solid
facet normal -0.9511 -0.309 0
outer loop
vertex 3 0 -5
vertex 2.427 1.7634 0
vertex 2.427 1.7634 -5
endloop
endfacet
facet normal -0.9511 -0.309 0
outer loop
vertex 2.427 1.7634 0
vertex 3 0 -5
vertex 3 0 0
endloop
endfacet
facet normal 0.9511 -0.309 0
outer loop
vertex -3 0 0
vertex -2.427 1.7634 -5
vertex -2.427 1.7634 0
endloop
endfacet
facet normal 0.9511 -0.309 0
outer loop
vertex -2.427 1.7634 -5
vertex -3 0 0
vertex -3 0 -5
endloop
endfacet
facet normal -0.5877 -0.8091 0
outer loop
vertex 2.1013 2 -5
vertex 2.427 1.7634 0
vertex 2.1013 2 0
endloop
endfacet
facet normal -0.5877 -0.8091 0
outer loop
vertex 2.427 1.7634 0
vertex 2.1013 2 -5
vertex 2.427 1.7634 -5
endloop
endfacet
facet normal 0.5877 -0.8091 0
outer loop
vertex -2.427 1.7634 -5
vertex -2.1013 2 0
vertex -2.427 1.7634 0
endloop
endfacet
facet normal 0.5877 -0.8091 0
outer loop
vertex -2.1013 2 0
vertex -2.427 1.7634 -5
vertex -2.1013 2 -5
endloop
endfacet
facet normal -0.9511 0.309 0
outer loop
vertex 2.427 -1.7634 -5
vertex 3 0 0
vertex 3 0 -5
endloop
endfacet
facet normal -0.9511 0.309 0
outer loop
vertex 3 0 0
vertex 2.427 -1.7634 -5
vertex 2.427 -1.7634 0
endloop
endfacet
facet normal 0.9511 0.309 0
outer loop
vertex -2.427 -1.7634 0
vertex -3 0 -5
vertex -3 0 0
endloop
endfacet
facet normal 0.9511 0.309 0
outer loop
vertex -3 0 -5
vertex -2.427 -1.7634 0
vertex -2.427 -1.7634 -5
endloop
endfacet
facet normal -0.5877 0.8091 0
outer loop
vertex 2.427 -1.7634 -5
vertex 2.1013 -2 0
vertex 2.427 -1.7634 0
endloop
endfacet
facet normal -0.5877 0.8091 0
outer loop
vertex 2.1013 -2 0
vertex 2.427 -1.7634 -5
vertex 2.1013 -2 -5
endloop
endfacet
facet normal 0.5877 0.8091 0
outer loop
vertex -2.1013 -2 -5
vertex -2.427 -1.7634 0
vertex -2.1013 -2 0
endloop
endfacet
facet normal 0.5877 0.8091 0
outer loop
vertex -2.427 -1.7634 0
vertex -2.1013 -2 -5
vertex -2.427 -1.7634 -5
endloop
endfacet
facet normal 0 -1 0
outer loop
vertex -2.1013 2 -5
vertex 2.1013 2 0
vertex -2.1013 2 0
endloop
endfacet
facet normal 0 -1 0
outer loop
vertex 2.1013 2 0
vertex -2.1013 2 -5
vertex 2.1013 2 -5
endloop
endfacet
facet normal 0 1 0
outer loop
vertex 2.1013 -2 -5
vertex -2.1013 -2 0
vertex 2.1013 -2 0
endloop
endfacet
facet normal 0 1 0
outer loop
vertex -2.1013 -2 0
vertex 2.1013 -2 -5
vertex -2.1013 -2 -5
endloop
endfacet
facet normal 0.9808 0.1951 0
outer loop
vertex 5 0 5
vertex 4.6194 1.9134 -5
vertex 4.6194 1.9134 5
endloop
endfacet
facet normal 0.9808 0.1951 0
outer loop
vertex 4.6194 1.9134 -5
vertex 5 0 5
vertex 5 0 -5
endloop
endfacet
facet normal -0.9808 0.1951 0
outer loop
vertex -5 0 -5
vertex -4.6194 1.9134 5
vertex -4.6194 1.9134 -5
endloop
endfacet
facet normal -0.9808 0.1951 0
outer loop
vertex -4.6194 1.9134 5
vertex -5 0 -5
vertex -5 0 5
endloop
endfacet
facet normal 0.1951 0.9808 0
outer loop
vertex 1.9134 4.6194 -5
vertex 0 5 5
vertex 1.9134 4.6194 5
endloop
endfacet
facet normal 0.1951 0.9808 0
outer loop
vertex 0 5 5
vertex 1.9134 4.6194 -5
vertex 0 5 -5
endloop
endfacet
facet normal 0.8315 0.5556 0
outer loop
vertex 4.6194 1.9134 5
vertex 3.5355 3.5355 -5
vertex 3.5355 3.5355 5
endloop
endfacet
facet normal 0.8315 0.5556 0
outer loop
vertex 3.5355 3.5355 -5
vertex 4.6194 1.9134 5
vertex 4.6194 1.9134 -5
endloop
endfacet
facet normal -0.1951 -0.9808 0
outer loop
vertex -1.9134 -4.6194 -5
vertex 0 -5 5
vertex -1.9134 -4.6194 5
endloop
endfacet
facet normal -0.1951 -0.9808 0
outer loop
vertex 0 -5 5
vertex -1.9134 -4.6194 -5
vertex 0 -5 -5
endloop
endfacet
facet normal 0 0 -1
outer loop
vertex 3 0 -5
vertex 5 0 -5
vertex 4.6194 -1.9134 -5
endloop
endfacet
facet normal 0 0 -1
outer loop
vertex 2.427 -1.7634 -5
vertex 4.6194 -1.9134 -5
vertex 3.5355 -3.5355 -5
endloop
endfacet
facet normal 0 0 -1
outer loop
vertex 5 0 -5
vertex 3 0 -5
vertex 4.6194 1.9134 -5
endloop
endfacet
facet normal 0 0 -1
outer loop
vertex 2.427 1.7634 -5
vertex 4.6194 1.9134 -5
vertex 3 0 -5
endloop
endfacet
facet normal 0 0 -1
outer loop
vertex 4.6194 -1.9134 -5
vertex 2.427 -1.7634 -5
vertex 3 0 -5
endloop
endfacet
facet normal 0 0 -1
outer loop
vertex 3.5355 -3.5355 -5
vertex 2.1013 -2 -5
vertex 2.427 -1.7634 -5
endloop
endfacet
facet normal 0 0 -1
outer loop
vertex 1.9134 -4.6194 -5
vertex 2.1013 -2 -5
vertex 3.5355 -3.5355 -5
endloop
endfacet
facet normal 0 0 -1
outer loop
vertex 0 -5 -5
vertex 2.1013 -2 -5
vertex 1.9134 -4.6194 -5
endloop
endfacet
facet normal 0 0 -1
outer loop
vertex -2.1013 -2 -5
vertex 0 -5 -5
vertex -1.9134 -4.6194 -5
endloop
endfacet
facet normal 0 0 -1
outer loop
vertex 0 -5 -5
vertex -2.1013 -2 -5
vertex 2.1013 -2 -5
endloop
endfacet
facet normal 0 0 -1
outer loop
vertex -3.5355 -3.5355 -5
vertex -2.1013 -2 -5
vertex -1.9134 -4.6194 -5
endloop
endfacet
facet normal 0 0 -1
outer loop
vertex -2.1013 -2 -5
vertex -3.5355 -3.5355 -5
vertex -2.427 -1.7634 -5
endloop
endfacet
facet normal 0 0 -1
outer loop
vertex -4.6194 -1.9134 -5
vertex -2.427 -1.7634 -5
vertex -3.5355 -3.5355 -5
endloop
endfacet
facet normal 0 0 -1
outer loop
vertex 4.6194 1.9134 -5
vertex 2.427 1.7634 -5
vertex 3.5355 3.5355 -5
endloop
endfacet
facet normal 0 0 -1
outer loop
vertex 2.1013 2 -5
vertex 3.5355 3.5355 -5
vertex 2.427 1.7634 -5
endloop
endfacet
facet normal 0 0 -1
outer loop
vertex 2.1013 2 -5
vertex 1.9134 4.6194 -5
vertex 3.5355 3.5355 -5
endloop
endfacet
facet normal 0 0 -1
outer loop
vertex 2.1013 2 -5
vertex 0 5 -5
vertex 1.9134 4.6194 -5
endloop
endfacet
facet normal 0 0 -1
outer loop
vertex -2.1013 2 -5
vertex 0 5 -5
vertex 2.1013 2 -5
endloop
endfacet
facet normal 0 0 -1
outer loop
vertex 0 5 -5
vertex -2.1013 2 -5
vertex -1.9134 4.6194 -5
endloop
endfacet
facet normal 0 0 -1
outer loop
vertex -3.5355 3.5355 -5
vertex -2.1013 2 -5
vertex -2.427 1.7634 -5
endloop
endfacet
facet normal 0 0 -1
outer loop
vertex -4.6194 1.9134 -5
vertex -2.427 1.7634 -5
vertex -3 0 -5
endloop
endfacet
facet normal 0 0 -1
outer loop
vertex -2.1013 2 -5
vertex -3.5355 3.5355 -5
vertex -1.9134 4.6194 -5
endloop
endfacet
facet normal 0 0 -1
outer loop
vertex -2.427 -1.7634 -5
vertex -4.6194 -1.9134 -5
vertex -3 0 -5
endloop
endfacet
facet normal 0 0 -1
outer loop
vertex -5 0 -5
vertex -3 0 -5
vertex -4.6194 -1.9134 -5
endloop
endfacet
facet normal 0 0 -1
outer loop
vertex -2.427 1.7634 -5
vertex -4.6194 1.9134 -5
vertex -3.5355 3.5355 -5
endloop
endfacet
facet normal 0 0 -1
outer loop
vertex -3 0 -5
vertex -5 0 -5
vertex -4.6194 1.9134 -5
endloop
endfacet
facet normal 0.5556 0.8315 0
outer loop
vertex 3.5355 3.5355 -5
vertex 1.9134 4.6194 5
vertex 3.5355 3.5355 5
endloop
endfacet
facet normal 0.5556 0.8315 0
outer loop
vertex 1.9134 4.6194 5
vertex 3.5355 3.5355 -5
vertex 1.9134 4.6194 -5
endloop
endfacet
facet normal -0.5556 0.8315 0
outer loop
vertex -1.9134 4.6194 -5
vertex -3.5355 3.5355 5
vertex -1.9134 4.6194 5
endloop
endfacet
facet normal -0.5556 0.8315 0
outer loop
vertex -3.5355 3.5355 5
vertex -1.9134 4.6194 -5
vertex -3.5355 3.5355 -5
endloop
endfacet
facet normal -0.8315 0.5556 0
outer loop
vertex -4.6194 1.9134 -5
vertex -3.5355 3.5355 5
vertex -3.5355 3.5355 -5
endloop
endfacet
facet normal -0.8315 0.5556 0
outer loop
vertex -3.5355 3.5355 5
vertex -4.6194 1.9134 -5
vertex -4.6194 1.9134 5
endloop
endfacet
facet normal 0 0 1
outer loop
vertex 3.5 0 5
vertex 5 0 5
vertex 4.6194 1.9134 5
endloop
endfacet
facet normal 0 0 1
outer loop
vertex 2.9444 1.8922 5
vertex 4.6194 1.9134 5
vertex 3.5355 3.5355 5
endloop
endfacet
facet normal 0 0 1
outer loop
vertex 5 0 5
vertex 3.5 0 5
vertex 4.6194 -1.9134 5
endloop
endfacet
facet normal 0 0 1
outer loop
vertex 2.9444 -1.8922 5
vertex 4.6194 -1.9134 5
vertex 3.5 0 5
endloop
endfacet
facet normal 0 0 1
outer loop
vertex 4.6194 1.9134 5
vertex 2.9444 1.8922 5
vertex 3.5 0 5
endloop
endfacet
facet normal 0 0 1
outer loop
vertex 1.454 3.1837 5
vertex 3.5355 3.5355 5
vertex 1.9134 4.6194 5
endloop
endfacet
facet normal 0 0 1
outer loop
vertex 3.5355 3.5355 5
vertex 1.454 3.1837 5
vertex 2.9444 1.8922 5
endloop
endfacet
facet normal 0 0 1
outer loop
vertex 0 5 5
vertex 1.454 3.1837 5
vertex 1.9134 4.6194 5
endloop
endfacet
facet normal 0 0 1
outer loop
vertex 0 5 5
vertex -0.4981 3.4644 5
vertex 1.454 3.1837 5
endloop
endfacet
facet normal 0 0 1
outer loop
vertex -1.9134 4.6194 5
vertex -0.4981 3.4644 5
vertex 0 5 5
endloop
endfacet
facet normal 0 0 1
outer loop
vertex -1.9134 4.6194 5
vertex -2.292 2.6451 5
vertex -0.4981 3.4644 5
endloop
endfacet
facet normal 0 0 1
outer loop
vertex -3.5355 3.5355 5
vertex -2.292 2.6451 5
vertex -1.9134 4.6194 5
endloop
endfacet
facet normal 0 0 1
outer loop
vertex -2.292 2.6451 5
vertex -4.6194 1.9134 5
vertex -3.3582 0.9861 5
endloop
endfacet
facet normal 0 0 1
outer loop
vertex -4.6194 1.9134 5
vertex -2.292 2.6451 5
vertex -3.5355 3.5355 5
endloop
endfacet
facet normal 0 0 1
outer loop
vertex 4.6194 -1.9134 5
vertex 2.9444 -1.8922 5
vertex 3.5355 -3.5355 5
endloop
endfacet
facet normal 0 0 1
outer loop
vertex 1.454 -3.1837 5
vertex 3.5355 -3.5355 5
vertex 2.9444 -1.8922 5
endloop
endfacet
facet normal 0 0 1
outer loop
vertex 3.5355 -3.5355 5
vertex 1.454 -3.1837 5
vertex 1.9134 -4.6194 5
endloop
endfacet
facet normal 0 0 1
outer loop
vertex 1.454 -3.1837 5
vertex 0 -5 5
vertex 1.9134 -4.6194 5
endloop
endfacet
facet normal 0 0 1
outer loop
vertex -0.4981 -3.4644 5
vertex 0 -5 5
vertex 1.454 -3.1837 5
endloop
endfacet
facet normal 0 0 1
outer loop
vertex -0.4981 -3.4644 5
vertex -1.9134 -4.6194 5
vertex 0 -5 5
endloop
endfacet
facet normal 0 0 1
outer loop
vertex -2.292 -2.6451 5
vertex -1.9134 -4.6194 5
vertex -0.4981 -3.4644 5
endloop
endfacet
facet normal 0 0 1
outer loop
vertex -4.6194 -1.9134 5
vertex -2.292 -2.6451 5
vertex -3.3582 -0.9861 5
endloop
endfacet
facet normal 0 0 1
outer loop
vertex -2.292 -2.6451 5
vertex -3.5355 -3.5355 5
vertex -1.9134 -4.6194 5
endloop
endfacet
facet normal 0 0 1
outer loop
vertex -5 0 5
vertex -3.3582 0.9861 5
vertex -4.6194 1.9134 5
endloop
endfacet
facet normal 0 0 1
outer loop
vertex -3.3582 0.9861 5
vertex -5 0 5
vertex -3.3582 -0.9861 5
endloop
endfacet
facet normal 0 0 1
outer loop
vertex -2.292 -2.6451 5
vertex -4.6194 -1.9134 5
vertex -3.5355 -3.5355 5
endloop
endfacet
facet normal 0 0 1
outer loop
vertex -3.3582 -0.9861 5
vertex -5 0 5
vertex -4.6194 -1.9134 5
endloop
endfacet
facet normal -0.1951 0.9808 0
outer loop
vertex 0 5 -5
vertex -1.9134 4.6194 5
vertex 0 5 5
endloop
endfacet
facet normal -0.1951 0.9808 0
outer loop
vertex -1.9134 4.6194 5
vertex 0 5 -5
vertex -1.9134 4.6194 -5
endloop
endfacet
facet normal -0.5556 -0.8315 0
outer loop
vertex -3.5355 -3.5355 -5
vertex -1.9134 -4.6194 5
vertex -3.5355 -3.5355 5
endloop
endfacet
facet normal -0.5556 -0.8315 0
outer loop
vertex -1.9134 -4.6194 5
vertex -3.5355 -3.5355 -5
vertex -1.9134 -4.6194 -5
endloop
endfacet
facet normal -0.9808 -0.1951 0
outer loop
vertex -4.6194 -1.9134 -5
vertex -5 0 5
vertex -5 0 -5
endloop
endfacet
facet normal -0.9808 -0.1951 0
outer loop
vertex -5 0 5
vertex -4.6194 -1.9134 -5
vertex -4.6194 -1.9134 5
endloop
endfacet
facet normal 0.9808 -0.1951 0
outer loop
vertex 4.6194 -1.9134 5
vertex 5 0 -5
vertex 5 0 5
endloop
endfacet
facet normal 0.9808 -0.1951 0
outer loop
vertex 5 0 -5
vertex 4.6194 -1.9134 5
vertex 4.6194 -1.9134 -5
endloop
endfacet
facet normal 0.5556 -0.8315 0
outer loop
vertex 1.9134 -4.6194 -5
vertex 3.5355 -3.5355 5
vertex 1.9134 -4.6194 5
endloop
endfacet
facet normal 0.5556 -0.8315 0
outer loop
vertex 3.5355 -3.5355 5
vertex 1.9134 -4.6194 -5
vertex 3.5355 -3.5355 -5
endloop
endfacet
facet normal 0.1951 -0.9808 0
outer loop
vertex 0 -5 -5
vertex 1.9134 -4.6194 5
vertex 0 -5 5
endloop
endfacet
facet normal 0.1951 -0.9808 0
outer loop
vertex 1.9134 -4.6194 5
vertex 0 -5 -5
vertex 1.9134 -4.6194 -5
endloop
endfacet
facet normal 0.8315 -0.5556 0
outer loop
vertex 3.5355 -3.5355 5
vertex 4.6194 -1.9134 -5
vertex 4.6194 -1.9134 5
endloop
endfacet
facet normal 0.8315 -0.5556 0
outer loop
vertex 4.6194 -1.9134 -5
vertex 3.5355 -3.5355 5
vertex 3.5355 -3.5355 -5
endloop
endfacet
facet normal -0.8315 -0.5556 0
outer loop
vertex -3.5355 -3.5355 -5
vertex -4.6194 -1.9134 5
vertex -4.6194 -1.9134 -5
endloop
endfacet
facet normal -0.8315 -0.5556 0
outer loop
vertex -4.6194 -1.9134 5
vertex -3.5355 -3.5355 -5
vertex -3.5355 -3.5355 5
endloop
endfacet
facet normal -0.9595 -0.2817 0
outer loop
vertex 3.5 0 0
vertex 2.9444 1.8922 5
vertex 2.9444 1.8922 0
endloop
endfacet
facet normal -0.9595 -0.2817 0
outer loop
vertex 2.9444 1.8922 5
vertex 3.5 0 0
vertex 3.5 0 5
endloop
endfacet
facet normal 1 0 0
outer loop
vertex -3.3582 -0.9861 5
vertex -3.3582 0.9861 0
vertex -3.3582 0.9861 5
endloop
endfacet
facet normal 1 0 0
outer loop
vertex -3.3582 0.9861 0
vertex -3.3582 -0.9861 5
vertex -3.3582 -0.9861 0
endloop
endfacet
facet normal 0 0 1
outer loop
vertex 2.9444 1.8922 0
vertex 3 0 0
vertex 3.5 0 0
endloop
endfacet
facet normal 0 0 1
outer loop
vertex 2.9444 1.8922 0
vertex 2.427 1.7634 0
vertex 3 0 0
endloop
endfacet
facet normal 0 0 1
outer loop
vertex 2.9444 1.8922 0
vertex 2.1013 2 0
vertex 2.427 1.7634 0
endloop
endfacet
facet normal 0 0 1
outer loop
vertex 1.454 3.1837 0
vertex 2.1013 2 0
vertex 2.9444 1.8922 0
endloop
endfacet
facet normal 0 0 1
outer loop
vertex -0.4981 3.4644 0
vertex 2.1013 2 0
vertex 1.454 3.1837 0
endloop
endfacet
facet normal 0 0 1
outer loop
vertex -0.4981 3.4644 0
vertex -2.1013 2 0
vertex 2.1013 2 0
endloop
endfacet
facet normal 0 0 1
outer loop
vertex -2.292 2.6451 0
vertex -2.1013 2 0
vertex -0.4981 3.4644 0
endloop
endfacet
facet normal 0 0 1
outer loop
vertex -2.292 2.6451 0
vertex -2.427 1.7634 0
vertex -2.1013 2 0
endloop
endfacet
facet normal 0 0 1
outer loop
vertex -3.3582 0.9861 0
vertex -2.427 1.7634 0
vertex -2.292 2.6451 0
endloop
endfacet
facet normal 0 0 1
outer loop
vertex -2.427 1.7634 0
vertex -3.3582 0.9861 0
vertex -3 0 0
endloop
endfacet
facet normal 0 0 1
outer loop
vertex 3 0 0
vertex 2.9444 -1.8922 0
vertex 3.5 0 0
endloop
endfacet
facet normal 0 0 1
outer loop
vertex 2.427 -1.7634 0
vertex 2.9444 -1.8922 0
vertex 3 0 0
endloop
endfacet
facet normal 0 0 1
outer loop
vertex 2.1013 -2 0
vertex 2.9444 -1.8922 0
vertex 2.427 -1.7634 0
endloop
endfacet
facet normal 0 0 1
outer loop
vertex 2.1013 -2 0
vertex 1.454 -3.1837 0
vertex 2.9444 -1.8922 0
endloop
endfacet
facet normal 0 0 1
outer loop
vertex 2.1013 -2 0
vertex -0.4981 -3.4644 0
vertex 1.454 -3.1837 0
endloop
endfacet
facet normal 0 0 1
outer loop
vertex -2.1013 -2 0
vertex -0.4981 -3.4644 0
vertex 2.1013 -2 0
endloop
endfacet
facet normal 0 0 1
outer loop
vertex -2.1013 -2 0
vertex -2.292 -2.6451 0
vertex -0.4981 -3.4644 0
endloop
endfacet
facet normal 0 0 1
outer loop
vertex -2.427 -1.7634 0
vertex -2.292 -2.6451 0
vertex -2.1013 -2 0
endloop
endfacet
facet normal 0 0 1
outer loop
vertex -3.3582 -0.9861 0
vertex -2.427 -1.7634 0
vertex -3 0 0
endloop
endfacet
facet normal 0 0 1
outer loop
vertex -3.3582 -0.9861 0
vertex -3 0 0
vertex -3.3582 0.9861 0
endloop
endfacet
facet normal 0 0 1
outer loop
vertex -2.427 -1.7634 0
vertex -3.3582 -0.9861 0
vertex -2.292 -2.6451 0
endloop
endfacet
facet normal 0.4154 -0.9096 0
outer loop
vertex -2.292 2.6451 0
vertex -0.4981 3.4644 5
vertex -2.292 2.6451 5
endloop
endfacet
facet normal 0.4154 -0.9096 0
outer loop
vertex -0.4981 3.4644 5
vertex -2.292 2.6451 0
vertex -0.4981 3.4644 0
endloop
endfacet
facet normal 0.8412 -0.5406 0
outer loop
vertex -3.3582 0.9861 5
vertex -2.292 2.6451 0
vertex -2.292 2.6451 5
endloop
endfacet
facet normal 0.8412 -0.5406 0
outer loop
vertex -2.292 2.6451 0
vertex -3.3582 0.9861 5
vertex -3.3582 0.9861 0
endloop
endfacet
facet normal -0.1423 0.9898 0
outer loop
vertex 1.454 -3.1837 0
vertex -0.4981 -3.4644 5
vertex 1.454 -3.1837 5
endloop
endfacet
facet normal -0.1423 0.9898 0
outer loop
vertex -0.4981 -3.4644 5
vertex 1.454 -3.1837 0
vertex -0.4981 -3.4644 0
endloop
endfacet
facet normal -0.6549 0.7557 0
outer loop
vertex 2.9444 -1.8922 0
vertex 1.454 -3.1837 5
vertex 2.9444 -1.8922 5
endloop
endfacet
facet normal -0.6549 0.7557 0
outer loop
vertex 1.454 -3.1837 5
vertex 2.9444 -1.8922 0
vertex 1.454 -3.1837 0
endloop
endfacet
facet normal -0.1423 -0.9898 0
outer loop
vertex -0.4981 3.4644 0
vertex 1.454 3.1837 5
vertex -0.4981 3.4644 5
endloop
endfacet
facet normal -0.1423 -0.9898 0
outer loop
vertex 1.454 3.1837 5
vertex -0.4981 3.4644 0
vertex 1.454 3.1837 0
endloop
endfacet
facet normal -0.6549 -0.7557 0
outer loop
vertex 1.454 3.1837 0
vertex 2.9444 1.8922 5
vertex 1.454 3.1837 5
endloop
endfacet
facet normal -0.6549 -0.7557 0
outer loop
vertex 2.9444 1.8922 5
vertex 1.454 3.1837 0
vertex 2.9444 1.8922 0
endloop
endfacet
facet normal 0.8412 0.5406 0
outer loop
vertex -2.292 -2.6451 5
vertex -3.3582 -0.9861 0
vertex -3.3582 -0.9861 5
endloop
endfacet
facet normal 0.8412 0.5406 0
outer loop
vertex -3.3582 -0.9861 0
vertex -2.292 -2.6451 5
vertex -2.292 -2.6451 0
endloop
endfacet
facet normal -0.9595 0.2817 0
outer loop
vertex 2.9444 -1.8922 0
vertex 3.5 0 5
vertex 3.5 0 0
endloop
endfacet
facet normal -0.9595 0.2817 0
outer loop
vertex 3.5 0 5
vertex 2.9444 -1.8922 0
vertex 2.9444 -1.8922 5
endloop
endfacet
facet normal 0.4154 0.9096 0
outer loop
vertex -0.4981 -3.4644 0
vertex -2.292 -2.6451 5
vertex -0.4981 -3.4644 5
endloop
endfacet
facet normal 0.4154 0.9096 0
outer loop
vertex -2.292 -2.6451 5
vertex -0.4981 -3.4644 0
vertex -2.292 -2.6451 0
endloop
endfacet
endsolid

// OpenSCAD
difference(){
    cylinder(r=5,h=10,center=true);
    translate([0,0,3])
    cylinder(r=3.5,h=6,center=true);
    translate([0,0,-2.9])
    bjz(6,ct=true);    
}

module bjz(h_u,ct=false){
    difference(){
        cylinder(r=3,h=h_u,center=ct);
        translate([0,5,0])
        cube([10,6,h_u+1],center=true);
        translate([0,-5,0])
        cube([10,6,h_u+1],center=true);
    }    
}
